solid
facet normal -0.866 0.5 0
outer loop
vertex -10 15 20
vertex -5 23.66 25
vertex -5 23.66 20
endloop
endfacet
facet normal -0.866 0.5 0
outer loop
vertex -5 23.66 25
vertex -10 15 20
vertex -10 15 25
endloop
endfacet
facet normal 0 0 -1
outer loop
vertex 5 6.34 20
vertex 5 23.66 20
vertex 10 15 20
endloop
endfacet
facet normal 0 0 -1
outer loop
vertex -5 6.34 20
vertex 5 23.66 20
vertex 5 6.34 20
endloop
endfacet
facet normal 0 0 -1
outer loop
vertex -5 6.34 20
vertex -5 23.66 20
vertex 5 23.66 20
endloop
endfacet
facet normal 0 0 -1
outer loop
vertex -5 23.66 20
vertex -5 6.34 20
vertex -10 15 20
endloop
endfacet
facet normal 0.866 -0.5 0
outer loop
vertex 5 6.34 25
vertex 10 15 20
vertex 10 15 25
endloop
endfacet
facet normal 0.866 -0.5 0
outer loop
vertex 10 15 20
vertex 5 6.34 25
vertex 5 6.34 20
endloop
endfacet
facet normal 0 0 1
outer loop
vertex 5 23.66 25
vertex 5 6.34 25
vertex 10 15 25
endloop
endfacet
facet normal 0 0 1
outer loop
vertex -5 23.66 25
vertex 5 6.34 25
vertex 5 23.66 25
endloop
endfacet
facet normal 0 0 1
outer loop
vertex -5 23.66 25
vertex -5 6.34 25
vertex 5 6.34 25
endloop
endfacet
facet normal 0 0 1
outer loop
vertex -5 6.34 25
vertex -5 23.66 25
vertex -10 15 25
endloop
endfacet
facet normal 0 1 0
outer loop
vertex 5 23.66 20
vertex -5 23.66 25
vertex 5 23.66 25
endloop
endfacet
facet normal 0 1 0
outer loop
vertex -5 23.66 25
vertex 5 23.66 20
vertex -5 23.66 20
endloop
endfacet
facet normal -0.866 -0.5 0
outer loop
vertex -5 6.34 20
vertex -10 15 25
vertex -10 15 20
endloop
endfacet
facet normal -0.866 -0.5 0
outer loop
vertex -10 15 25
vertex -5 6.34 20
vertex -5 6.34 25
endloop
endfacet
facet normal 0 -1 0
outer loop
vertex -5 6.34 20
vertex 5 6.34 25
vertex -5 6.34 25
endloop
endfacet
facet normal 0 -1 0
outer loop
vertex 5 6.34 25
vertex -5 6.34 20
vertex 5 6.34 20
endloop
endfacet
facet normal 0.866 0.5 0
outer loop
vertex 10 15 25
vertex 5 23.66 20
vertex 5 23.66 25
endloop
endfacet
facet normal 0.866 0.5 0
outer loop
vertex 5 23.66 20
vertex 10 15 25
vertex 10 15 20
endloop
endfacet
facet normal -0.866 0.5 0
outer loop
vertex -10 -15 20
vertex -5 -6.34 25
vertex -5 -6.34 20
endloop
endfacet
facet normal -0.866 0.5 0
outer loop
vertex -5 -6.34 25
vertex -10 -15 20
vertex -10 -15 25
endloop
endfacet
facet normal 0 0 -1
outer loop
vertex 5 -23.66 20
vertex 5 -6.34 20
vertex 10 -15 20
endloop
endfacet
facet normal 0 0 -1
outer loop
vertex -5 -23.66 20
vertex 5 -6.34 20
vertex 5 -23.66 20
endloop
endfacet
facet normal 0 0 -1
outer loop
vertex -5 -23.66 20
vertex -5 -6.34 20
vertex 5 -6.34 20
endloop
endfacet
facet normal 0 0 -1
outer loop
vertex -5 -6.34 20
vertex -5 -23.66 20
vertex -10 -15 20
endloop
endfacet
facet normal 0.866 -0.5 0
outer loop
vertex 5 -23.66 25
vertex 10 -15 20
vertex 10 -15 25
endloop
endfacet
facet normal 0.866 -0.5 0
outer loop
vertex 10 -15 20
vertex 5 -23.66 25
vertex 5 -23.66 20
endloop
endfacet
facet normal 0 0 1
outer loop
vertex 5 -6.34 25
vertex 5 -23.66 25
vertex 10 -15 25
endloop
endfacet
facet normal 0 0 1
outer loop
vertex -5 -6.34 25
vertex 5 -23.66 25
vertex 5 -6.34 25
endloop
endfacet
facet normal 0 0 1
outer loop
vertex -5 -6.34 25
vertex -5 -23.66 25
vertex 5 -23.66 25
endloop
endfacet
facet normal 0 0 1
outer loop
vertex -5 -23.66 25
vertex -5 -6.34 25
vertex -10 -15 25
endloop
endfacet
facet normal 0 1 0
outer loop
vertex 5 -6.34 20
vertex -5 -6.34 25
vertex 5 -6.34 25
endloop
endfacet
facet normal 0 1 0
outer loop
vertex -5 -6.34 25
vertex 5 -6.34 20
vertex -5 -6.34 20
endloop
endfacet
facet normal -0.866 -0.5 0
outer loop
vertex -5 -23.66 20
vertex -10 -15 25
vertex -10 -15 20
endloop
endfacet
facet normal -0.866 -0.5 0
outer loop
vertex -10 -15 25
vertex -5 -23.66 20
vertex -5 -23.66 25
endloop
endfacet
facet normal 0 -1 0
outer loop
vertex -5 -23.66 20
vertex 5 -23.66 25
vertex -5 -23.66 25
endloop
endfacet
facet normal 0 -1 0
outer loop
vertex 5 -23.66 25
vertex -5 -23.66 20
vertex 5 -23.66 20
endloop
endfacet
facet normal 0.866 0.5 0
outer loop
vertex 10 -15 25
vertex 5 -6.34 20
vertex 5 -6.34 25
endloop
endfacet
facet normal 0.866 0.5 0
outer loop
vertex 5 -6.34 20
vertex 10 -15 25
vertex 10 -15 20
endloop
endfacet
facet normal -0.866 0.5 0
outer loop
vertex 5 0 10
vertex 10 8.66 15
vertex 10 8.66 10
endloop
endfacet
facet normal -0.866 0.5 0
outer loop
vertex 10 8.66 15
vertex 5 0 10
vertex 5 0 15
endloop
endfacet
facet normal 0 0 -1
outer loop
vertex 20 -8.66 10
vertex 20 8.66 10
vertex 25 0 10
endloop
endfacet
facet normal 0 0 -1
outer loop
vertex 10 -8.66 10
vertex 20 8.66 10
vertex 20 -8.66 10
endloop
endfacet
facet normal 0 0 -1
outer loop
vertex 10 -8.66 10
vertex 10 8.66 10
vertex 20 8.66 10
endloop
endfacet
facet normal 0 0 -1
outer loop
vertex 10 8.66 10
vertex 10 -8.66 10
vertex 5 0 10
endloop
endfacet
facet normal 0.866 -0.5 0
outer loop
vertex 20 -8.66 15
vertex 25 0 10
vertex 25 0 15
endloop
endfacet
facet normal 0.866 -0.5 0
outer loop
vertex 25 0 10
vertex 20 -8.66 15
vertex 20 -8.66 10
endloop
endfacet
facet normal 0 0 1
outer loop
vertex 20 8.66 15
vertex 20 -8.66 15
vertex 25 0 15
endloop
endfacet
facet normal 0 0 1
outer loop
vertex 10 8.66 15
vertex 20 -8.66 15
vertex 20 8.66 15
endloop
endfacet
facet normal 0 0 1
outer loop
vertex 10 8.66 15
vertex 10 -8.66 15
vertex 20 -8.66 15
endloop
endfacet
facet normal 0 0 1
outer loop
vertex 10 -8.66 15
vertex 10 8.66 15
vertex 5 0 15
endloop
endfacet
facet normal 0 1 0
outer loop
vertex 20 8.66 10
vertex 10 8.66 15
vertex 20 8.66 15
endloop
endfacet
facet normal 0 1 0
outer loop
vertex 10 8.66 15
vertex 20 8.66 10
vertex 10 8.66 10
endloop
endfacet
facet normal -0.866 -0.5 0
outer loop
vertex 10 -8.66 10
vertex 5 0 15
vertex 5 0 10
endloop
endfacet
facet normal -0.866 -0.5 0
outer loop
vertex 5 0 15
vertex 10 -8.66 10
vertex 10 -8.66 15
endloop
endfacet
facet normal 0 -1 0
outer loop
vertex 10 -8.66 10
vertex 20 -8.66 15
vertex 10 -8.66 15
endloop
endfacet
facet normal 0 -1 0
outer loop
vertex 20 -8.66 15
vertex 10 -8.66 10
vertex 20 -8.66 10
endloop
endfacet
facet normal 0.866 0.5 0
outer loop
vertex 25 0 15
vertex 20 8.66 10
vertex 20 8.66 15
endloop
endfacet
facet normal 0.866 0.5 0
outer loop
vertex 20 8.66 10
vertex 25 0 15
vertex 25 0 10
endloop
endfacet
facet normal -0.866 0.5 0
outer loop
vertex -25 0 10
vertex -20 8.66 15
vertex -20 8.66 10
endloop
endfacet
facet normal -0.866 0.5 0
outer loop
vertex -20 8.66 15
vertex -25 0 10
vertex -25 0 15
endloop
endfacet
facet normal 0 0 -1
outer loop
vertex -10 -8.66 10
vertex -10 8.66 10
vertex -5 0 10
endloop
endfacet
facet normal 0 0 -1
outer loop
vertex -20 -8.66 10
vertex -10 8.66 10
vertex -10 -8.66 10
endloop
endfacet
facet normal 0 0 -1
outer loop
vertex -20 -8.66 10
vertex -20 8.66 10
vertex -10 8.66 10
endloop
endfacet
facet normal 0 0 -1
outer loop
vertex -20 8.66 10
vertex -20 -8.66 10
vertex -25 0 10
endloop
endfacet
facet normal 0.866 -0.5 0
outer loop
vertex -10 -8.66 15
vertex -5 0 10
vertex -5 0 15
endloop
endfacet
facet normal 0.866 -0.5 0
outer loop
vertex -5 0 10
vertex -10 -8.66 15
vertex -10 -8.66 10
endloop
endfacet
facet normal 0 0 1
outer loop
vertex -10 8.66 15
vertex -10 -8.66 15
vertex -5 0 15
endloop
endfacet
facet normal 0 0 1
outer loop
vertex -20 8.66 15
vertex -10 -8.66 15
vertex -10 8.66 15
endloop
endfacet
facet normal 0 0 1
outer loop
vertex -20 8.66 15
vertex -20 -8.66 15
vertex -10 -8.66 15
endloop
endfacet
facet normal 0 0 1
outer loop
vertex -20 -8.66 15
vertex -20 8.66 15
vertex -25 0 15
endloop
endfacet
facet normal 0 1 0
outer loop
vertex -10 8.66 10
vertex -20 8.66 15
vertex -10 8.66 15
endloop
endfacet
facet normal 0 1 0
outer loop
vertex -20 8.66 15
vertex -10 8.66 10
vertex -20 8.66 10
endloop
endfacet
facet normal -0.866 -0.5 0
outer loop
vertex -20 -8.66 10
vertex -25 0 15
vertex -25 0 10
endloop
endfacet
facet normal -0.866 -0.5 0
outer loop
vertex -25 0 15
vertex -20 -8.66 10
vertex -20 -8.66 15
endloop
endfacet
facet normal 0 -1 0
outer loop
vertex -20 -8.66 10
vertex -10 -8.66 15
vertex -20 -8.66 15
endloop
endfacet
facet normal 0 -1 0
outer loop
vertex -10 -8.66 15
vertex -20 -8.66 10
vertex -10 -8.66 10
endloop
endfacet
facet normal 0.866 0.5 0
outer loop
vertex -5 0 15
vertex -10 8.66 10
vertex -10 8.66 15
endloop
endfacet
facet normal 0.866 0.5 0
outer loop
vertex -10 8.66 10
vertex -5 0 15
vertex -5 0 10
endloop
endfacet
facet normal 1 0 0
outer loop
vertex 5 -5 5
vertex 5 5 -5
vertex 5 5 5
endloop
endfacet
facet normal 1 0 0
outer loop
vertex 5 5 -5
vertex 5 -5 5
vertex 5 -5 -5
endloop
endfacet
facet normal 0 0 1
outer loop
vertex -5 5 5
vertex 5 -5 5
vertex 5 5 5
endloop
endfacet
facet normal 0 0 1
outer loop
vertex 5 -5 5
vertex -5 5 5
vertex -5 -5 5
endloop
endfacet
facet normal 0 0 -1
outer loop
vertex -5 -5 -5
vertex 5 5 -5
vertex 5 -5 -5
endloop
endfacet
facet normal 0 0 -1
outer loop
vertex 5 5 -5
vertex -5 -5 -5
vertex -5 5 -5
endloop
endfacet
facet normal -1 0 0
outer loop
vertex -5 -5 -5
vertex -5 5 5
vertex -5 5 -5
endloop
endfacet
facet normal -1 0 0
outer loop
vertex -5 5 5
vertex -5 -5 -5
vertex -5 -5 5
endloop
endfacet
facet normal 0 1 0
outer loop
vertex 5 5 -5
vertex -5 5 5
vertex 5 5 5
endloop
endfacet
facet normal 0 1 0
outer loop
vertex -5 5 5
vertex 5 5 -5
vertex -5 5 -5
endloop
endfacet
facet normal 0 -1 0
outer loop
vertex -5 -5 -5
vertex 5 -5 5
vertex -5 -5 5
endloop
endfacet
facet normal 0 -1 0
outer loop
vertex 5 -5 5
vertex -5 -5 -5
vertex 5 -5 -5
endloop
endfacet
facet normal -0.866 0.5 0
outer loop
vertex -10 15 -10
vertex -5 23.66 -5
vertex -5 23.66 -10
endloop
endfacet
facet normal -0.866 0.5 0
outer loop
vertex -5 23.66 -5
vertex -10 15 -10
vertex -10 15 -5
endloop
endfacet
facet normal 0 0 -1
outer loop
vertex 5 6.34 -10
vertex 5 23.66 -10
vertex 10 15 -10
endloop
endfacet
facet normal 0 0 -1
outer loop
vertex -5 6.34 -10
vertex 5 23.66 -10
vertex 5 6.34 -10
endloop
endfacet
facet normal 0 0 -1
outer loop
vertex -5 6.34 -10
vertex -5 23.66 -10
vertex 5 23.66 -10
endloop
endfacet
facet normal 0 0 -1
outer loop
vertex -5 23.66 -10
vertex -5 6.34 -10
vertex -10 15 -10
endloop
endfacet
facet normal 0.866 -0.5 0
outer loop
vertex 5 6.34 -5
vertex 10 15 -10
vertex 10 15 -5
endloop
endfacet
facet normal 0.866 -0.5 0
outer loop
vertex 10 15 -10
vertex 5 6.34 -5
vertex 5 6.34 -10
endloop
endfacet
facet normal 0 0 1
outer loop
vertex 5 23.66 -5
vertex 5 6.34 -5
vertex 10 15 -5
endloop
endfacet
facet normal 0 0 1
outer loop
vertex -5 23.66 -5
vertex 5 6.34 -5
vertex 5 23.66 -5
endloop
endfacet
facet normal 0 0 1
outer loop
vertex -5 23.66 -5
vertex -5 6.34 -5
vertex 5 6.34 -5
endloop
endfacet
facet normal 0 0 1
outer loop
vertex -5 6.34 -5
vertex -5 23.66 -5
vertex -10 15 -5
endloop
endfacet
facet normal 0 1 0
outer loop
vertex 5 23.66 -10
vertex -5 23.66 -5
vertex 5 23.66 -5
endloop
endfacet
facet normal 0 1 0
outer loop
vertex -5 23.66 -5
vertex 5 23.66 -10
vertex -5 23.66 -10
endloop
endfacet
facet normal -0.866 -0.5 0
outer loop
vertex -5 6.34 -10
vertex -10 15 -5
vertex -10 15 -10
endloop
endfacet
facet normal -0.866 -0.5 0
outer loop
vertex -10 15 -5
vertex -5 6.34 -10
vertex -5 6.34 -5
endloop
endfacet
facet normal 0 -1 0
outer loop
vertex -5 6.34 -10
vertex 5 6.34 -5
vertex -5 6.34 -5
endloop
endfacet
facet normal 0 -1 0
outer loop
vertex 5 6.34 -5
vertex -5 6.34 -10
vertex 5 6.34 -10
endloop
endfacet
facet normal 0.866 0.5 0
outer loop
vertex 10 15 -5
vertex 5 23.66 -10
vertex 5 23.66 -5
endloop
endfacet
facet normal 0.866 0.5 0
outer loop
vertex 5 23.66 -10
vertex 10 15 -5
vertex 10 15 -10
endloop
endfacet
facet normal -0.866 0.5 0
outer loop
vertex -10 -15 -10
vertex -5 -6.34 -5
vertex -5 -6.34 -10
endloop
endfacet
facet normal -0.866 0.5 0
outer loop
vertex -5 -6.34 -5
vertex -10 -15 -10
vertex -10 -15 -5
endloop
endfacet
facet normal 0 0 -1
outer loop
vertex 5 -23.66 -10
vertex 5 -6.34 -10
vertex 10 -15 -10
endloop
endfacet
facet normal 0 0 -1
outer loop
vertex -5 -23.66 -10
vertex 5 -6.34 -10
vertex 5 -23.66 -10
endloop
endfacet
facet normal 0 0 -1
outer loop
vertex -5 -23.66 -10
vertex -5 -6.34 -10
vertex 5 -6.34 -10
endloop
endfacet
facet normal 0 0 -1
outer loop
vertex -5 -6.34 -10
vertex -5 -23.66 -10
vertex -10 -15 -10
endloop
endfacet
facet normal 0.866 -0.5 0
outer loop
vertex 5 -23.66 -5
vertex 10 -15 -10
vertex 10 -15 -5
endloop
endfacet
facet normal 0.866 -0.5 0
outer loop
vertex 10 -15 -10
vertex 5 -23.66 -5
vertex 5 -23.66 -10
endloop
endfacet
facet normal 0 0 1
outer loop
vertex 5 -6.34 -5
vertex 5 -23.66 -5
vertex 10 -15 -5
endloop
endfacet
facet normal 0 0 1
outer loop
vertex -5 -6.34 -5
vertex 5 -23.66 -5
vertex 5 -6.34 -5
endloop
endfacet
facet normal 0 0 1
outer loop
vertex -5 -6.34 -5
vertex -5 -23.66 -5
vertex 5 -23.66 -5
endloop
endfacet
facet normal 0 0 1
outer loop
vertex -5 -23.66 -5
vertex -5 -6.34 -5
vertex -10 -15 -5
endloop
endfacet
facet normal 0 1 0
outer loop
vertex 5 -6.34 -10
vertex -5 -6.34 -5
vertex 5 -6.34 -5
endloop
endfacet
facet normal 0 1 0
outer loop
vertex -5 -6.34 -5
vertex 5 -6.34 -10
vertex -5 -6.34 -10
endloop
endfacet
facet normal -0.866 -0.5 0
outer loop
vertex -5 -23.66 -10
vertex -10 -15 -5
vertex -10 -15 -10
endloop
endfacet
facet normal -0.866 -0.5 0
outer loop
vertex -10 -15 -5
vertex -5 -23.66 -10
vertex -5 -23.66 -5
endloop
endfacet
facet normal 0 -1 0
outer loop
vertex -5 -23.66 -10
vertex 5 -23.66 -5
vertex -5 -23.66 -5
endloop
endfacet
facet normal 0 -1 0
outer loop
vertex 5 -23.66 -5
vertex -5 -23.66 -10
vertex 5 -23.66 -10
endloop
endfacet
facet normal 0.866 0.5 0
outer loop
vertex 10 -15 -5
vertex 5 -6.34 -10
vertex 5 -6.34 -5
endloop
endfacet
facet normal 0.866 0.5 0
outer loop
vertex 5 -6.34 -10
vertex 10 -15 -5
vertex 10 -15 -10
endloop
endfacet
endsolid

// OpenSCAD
// Parameters for components
hex_radius = 10; // Radius of the hexagonal prism
hex_height = 5;  // Height of the hexagonal prism
cube_size = 10;  // Side length of the cube

// Function to create a hexagonal prism
module hexagonal_component() {
    rotate([0, 0, 0])
    linear_extrude(height = hex_height)
    polygon(points = [
        [hex_radius * cos(0), hex_radius * sin(0)],
        [hex_radius * cos(60), hex_radius * sin(60)],
        [hex_radius * cos(120), hex_radius * sin(120)],
        [hex_radius * cos(180), hex_radius * sin(180)],
        [hex_radius * cos(240), hex_radius * sin(240)],
        [hex_radius * cos(300), hex_radius * sin(300)]
    ]);
}

// Function to create a cubic component
module cubic_component() {
    cube([cube_size, cube_size, cube_size], center = true);
}

// Assembly of the model
module assembly() {
    // Layer 1: Topmost layer with two hexagonal components
    translate([0, 15, 20]) hexagonal_component(); // Hexagonal component 1
    translate([0, -15, 20]) hexagonal_component(); // Hexagonal component 2

    // Layer 2: Middle layer with two hexagonal components
    translate([15, 0, 10]) hexagonal_component(); // Hexagonal component 3
    translate([-15, 0, 10]) hexagonal_component(); // Hexagonal component 4

    // Layer 3: Central cubic component
    translate([0, 0, 0]) cubic_component();

    // Layer 4: Bottommost layer with two hexagonal components
    translate([0, 15, -10]) hexagonal_component(); // Hexagonal component 5
    translate([0, -15, -10]) hexagonal_component(); // Hexagonal component 6
}

// Render the assembly
assembly();
